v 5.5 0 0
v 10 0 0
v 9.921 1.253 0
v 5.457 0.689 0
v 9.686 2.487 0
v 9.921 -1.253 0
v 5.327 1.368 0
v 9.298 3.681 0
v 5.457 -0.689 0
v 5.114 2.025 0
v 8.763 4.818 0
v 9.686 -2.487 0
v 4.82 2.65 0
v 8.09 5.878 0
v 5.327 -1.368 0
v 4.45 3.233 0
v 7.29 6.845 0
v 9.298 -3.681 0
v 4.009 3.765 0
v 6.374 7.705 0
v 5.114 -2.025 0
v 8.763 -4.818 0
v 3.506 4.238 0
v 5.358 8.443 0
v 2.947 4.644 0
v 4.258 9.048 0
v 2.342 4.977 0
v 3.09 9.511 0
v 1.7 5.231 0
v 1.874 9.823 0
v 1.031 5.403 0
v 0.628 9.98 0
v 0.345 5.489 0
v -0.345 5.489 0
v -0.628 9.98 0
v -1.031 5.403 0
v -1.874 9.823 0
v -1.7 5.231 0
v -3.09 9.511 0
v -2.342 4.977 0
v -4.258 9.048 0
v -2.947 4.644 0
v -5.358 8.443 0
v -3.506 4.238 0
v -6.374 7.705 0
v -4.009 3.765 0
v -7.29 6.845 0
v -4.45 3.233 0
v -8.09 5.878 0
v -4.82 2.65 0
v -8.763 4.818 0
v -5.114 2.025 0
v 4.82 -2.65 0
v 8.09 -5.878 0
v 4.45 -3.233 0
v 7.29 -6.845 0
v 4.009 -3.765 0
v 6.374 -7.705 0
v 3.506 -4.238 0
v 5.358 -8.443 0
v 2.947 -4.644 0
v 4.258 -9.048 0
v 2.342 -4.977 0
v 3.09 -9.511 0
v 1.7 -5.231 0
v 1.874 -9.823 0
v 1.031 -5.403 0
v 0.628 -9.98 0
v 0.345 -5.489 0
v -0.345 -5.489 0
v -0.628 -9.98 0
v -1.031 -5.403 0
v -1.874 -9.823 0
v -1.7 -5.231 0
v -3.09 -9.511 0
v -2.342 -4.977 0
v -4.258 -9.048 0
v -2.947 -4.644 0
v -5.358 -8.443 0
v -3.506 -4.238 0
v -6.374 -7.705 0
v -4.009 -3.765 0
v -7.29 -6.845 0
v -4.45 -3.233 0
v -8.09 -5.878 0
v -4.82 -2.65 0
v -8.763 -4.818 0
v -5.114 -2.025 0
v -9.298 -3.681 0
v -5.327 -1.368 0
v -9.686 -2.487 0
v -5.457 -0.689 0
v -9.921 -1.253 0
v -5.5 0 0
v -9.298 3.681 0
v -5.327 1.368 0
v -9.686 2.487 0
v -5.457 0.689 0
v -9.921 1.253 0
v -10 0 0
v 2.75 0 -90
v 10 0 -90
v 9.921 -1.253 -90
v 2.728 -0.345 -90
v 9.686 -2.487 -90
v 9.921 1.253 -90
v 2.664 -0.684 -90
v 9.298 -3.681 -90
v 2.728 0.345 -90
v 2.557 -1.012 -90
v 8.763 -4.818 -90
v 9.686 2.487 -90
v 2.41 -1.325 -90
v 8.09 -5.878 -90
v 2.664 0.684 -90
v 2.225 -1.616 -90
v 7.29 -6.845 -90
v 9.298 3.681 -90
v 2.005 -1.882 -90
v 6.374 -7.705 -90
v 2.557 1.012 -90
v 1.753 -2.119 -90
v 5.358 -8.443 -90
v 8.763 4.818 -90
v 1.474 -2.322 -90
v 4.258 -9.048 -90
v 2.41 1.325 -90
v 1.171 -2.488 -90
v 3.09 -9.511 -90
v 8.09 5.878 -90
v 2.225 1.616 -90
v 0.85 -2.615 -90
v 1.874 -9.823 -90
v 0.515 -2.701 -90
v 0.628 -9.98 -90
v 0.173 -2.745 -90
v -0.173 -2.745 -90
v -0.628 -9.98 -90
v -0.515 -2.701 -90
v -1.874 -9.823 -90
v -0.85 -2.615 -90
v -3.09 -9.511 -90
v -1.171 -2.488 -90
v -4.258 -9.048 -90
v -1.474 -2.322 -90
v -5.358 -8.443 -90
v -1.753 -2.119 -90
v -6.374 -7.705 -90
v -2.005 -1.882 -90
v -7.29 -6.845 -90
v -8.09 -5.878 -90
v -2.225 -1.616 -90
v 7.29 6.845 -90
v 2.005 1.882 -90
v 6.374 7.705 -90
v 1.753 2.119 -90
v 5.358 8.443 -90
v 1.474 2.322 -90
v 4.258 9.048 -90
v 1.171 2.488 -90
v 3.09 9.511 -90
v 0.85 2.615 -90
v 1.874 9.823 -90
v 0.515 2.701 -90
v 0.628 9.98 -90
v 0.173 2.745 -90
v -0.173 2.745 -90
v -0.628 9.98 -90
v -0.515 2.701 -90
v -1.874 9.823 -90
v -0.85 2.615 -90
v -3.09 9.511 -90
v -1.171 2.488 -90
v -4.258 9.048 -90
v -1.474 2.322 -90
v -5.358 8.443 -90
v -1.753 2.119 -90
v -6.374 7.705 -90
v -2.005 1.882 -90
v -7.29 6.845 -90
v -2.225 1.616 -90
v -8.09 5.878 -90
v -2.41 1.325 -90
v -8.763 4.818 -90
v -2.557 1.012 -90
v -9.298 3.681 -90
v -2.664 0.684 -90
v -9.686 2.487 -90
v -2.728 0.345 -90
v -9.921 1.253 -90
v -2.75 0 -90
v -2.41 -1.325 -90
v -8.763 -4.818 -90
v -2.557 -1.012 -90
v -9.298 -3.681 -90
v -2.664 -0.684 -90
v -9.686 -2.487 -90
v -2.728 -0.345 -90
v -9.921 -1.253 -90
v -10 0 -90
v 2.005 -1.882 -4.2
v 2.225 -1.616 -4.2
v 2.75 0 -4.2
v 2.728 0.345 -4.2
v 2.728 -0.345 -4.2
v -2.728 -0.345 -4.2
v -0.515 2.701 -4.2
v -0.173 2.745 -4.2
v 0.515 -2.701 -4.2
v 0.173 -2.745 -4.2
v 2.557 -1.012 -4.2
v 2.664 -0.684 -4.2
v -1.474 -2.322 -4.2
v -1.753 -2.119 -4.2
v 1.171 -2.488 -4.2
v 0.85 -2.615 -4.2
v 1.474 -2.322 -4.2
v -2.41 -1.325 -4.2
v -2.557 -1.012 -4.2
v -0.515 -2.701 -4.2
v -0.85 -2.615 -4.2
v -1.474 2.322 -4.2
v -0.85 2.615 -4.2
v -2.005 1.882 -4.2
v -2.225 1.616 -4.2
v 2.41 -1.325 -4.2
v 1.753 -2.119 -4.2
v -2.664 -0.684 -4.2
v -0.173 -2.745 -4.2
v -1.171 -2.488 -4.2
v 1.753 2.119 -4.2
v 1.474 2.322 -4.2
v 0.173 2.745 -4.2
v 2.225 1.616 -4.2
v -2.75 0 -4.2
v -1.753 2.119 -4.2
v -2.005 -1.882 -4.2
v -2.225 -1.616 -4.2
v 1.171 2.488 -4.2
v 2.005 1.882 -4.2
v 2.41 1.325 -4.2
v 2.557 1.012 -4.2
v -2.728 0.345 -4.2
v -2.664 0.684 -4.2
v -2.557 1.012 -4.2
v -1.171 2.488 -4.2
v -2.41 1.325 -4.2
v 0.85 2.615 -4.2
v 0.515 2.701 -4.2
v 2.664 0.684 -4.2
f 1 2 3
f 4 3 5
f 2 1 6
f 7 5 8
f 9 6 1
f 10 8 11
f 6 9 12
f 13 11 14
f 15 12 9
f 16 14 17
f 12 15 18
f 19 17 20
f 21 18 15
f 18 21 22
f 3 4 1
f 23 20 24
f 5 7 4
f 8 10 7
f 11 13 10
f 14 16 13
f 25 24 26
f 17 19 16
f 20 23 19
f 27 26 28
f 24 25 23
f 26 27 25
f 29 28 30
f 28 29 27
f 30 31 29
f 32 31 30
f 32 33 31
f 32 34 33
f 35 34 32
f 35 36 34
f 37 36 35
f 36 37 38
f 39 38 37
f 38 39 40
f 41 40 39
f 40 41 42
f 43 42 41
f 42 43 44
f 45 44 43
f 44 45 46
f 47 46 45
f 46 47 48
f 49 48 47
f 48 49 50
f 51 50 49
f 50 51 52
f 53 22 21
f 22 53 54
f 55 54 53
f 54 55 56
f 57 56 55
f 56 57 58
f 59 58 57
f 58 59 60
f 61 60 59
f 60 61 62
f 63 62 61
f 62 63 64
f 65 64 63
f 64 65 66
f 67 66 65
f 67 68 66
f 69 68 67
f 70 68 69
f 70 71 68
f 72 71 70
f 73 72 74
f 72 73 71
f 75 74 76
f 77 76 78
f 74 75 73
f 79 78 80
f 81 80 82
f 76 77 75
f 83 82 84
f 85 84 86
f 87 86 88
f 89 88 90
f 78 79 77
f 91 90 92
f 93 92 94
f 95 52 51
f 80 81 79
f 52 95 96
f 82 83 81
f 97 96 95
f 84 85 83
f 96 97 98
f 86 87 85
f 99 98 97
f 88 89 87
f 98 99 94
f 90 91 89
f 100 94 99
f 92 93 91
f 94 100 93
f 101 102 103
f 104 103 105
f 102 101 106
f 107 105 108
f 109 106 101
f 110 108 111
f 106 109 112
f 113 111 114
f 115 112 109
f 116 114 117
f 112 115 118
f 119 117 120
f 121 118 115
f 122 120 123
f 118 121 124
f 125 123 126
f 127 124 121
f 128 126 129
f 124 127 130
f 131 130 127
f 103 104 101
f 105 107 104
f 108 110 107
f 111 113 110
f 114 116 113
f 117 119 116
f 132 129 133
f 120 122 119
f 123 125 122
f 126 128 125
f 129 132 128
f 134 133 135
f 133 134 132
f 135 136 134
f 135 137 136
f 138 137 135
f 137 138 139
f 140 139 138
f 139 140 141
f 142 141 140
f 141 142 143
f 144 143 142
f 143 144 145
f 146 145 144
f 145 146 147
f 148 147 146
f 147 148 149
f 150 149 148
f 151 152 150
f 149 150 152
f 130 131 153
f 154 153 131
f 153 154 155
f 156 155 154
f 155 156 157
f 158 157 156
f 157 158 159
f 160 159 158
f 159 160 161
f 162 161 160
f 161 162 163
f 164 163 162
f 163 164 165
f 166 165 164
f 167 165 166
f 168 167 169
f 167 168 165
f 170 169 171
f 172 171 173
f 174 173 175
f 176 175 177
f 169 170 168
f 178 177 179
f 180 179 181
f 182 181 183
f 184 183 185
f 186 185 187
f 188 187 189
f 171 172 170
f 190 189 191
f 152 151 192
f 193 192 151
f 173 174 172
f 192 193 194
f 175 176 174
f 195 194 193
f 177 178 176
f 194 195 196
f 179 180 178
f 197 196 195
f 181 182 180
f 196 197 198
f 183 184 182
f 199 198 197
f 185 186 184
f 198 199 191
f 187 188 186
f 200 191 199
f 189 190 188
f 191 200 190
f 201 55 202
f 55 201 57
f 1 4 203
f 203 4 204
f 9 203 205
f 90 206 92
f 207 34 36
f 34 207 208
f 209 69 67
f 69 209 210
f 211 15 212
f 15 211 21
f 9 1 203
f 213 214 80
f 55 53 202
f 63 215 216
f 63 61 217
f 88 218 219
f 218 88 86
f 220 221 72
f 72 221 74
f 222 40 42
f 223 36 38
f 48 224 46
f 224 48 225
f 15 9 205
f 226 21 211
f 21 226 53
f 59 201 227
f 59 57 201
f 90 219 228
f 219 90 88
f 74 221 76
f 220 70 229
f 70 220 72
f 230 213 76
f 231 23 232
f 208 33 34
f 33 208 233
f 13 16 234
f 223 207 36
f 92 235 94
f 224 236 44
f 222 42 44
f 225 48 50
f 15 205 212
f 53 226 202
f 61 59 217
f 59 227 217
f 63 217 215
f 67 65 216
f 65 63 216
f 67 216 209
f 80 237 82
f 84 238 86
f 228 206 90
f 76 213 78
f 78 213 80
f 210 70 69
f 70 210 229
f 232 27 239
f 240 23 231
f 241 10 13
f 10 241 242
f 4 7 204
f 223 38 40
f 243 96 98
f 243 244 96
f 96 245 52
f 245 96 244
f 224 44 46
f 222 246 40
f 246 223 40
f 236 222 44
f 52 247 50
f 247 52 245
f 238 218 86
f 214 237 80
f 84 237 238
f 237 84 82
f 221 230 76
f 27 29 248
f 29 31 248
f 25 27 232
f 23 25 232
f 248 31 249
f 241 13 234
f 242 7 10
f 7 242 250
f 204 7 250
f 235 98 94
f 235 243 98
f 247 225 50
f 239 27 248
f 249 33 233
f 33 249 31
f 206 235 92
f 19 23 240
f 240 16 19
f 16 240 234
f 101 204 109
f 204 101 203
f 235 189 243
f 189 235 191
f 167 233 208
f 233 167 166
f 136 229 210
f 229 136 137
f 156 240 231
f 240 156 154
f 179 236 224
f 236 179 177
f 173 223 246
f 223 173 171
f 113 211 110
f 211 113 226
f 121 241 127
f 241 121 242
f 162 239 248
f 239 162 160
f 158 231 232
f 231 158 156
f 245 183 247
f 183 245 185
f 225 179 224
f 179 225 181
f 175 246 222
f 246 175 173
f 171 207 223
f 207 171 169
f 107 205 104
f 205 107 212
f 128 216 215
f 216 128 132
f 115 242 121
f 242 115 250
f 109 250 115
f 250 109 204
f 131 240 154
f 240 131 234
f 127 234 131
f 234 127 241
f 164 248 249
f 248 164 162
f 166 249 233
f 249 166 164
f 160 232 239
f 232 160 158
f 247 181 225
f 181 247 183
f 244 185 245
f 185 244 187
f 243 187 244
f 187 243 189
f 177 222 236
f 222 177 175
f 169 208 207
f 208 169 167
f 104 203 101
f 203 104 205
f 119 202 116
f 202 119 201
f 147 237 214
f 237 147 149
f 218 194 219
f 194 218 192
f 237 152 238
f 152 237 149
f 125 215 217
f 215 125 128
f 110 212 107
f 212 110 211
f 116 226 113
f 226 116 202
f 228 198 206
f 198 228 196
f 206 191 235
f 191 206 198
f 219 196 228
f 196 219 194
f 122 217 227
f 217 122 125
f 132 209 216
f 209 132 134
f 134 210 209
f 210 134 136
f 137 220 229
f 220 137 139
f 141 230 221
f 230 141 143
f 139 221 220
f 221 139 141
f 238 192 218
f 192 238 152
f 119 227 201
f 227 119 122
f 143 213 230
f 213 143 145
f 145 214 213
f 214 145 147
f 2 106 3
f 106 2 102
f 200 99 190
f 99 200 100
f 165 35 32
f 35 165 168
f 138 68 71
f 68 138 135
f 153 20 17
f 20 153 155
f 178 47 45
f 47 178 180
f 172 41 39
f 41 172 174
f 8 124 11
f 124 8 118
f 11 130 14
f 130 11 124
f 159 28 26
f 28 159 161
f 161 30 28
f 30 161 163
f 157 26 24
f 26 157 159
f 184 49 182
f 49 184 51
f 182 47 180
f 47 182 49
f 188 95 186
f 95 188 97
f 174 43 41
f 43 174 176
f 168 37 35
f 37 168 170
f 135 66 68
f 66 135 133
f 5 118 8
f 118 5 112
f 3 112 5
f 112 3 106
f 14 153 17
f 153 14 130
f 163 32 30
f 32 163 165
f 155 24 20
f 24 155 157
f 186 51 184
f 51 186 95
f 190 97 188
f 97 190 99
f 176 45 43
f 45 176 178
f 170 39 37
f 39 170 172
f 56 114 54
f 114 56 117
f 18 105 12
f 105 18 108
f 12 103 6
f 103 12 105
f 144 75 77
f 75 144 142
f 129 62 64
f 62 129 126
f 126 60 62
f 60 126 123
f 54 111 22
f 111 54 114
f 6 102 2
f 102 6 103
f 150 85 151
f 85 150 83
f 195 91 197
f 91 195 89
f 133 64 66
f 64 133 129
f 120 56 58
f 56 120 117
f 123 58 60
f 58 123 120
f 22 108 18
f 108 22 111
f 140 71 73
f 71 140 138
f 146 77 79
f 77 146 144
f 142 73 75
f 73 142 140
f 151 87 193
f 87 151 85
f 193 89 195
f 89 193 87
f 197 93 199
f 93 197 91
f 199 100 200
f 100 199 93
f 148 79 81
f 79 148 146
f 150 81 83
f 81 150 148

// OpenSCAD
$fn = 50;


difference() {
	union() {
		translate(v = [0, 0, -90.0000000000]) {
			cylinder(h = 90, r = 10.0000000000);
		}
		cylinder(h = 0, r = 13.0000000000);
	}
	union() {
		translate(v = [0, 0, 0]) {
			rotate(a = [0, 0, 0]) {
				difference() {
					union() {
						#translate(v = [0, 0, -90.0000000000]) {
							cylinder(h = 90, r = 2.2500000000);
						}
						#translate(v = [0, 0, -4.2000000000]) {
							cylinder(h = 4.2000000000, r = 10.0000000000, r1 = 2.7500000000, r2 = 5.5000000000);
						}
						#translate(v = [0, 0, -90.0000000000]) {
							cylinder(h = 90, r = 2.7500000000);
						}
						#translate(v = [0, 0, -90.0000000000]) {
							cylinder(h = 90, r = 2.2500000000);
						}
					}
					union();
				}
			}
		}
	}
}
